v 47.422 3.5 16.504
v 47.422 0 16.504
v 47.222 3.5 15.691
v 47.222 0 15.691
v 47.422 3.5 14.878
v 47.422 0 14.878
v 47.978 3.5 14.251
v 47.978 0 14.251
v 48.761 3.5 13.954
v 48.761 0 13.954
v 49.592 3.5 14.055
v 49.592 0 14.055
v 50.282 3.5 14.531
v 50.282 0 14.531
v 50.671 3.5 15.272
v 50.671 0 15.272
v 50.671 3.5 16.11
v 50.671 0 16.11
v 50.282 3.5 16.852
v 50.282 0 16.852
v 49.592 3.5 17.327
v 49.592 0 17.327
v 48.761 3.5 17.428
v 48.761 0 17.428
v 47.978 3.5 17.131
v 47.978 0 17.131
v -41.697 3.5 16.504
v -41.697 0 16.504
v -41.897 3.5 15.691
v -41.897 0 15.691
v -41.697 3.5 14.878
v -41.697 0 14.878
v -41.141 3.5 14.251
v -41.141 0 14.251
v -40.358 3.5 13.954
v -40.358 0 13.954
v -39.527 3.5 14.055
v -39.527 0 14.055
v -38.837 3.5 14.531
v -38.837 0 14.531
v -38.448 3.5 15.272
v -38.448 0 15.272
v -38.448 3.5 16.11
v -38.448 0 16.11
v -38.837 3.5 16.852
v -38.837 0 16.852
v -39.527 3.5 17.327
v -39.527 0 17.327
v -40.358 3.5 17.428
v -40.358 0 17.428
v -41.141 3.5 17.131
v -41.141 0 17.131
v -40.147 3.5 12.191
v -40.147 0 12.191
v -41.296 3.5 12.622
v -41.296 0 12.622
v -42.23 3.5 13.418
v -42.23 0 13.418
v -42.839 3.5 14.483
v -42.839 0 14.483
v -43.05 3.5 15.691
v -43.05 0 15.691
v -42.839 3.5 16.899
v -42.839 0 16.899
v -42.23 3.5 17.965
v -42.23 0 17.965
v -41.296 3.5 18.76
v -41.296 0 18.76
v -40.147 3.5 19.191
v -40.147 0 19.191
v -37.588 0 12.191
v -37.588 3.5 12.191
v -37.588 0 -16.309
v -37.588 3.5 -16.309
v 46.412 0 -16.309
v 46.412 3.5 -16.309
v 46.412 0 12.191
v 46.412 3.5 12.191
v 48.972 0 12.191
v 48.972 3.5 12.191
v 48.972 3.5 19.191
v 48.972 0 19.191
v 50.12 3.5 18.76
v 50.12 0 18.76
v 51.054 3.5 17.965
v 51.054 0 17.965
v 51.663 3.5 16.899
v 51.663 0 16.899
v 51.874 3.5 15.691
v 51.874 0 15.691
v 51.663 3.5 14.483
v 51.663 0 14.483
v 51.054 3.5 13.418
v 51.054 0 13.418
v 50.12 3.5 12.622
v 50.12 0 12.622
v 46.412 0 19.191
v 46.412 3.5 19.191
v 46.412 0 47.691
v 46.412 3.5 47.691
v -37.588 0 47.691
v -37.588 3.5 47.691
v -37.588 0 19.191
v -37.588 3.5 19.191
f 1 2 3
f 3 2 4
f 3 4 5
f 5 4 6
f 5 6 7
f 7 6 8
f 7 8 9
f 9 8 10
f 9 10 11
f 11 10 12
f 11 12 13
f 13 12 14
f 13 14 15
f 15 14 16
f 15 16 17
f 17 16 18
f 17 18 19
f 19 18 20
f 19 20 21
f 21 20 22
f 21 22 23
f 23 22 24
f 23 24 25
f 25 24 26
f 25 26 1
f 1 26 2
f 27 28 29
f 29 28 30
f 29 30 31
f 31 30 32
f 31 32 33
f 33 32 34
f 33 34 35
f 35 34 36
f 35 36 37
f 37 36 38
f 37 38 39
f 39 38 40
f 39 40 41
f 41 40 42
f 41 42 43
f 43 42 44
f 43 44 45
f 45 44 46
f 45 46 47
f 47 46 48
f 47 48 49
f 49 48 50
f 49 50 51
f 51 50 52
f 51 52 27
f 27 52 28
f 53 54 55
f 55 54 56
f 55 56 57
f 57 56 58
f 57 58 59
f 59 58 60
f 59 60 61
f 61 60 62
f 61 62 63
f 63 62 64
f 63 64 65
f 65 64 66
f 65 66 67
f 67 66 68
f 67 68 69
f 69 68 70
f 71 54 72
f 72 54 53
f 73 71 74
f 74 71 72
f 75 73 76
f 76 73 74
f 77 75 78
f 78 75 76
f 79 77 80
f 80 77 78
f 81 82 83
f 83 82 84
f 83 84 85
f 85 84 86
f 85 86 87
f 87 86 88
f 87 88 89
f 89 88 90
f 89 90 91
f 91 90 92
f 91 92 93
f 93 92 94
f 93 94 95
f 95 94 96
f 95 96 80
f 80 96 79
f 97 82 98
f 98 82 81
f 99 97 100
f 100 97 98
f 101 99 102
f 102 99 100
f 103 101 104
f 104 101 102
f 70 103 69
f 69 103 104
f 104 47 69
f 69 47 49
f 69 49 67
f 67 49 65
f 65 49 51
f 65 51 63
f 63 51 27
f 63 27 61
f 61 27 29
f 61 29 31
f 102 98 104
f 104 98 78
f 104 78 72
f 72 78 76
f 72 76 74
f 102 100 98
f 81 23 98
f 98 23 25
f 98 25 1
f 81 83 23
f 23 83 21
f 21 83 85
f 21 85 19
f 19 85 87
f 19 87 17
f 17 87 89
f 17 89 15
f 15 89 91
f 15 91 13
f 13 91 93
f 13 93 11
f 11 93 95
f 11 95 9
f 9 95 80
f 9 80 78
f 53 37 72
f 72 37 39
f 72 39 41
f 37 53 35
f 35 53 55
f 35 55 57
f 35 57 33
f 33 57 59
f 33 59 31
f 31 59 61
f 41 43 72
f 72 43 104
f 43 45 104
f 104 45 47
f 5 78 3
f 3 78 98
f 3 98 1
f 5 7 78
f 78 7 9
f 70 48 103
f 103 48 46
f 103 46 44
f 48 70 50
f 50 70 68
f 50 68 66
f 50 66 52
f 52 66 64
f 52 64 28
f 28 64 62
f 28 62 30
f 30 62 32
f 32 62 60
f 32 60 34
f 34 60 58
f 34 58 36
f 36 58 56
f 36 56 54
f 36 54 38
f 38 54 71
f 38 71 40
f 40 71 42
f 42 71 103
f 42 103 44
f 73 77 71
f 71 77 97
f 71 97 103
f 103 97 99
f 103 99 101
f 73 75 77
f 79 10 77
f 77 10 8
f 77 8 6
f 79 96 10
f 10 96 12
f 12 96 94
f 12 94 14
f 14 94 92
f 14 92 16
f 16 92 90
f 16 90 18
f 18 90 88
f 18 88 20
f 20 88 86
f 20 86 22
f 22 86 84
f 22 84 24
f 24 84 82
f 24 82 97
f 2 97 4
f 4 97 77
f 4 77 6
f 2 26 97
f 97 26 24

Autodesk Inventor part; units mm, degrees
ref_plane "YZ Plane" through (0, 0, 0) normal (1, 0, 0) x (0, 1, 0)
ref_plane "XZ Plane" through (0, 0, 0) normal (0, 1, 0) x (-1, 0, 0)
ref_plane "XY Plane" through (0, 0, 0) normal (0, 0, 1) x (1, 0, 0)
sketch "Esboço1" plane through (0, 0, 0) normal (0, 1, 0) x (-1, 0, 0)
  line L0 (35.5878, 45.6911) -> (-44.4122, 45.6911)
  line L1 (-44.4122, 45.6911) -> (-44.4122, -14.3089)
  line L2 (-44.4122, -14.3089) -> (35.5878, -14.3089)
  line L3 (35.5878, -14.3089) -> (35.5878, 45.6911)
  line L4 (35.5878, 45.6911) -> (35.5878, -14.3089)
  line L5 (45.5878, 15.6911) -> (-44.4122, 15.6911)
  line L6 (-4.4122, 85.6911) -> (-4.4122, -84.3089)
  line L7 (-44.4122, -14.3089) -> (-44.4122, 45.6911)
  line L8 (37.5878, 47.6911) -> (-46.4122, 47.6911)
  line L9 (-46.4122, -16.3089) -> (37.5878, -16.3089)
  circle A0 centre (40.1473, 15.6911) radius 1.75
  line L10 (40.1473, 19.1911) -> (37.5878, 19.1911)
  line L11 (37.5878, 12.1911) -> (40.1473, 12.1911)
  arc A1 (40.1473, 12.1911) -> (40.1473, 19.1911) centre (39.4884, 15.6911) ccw
  line L12 (37.5878, -16.3089) -> (37.5878, 12.1911)
  line L13 (37.5878, 19.1911) -> (37.5878, 47.6911)
  line L14 (-48.9716, 19.1911) -> (-46.4122, 19.1911)
  line L15 (-46.4122, 12.1911) -> (-48.9716, 12.1911)
  circle A2 centre (-48.9716, 15.6911) radius 1.75
  arc A3 (-48.9716, 19.1911) -> (-48.9716, 12.1911) centre (-48.3127, 15.6911) ccw
  line L16 (-46.4122, 47.6911) -> (-46.4122, 19.1911)
  line L17 (-46.4122, 12.1911) -> (-46.4122, -16.3089)
  point P0 (0, 0)
  point P1 (0.5878, 15.6911)
  point P2 (-4.4122, -16.3089)
  dimension "d2" = 60
  dimension "d3" = 30
  dimension "d4" = 80
  dimension "d5" = 64
  dimension "d6" = 32
  dimension "d7" = 3.5
  dimension "d8" = 3.5
extrude "Extrusão1" add sketch "Esboço1" along normal blind 3.5 contours L3 L5 L6 L0 | L0 L6 L8 L13 L10 A1 L5 A0 L3 | L6 L5 L1 L0 | L0 L1 L2 L6 L9 L17 L15 A3 L14 L16 L8 | L5 A0 A1 L11 L12 L9 L6 L2 L3 | L3 L2 L6 L5 | L6 L2 L1 L5
properties part number "tampa_pilha"
